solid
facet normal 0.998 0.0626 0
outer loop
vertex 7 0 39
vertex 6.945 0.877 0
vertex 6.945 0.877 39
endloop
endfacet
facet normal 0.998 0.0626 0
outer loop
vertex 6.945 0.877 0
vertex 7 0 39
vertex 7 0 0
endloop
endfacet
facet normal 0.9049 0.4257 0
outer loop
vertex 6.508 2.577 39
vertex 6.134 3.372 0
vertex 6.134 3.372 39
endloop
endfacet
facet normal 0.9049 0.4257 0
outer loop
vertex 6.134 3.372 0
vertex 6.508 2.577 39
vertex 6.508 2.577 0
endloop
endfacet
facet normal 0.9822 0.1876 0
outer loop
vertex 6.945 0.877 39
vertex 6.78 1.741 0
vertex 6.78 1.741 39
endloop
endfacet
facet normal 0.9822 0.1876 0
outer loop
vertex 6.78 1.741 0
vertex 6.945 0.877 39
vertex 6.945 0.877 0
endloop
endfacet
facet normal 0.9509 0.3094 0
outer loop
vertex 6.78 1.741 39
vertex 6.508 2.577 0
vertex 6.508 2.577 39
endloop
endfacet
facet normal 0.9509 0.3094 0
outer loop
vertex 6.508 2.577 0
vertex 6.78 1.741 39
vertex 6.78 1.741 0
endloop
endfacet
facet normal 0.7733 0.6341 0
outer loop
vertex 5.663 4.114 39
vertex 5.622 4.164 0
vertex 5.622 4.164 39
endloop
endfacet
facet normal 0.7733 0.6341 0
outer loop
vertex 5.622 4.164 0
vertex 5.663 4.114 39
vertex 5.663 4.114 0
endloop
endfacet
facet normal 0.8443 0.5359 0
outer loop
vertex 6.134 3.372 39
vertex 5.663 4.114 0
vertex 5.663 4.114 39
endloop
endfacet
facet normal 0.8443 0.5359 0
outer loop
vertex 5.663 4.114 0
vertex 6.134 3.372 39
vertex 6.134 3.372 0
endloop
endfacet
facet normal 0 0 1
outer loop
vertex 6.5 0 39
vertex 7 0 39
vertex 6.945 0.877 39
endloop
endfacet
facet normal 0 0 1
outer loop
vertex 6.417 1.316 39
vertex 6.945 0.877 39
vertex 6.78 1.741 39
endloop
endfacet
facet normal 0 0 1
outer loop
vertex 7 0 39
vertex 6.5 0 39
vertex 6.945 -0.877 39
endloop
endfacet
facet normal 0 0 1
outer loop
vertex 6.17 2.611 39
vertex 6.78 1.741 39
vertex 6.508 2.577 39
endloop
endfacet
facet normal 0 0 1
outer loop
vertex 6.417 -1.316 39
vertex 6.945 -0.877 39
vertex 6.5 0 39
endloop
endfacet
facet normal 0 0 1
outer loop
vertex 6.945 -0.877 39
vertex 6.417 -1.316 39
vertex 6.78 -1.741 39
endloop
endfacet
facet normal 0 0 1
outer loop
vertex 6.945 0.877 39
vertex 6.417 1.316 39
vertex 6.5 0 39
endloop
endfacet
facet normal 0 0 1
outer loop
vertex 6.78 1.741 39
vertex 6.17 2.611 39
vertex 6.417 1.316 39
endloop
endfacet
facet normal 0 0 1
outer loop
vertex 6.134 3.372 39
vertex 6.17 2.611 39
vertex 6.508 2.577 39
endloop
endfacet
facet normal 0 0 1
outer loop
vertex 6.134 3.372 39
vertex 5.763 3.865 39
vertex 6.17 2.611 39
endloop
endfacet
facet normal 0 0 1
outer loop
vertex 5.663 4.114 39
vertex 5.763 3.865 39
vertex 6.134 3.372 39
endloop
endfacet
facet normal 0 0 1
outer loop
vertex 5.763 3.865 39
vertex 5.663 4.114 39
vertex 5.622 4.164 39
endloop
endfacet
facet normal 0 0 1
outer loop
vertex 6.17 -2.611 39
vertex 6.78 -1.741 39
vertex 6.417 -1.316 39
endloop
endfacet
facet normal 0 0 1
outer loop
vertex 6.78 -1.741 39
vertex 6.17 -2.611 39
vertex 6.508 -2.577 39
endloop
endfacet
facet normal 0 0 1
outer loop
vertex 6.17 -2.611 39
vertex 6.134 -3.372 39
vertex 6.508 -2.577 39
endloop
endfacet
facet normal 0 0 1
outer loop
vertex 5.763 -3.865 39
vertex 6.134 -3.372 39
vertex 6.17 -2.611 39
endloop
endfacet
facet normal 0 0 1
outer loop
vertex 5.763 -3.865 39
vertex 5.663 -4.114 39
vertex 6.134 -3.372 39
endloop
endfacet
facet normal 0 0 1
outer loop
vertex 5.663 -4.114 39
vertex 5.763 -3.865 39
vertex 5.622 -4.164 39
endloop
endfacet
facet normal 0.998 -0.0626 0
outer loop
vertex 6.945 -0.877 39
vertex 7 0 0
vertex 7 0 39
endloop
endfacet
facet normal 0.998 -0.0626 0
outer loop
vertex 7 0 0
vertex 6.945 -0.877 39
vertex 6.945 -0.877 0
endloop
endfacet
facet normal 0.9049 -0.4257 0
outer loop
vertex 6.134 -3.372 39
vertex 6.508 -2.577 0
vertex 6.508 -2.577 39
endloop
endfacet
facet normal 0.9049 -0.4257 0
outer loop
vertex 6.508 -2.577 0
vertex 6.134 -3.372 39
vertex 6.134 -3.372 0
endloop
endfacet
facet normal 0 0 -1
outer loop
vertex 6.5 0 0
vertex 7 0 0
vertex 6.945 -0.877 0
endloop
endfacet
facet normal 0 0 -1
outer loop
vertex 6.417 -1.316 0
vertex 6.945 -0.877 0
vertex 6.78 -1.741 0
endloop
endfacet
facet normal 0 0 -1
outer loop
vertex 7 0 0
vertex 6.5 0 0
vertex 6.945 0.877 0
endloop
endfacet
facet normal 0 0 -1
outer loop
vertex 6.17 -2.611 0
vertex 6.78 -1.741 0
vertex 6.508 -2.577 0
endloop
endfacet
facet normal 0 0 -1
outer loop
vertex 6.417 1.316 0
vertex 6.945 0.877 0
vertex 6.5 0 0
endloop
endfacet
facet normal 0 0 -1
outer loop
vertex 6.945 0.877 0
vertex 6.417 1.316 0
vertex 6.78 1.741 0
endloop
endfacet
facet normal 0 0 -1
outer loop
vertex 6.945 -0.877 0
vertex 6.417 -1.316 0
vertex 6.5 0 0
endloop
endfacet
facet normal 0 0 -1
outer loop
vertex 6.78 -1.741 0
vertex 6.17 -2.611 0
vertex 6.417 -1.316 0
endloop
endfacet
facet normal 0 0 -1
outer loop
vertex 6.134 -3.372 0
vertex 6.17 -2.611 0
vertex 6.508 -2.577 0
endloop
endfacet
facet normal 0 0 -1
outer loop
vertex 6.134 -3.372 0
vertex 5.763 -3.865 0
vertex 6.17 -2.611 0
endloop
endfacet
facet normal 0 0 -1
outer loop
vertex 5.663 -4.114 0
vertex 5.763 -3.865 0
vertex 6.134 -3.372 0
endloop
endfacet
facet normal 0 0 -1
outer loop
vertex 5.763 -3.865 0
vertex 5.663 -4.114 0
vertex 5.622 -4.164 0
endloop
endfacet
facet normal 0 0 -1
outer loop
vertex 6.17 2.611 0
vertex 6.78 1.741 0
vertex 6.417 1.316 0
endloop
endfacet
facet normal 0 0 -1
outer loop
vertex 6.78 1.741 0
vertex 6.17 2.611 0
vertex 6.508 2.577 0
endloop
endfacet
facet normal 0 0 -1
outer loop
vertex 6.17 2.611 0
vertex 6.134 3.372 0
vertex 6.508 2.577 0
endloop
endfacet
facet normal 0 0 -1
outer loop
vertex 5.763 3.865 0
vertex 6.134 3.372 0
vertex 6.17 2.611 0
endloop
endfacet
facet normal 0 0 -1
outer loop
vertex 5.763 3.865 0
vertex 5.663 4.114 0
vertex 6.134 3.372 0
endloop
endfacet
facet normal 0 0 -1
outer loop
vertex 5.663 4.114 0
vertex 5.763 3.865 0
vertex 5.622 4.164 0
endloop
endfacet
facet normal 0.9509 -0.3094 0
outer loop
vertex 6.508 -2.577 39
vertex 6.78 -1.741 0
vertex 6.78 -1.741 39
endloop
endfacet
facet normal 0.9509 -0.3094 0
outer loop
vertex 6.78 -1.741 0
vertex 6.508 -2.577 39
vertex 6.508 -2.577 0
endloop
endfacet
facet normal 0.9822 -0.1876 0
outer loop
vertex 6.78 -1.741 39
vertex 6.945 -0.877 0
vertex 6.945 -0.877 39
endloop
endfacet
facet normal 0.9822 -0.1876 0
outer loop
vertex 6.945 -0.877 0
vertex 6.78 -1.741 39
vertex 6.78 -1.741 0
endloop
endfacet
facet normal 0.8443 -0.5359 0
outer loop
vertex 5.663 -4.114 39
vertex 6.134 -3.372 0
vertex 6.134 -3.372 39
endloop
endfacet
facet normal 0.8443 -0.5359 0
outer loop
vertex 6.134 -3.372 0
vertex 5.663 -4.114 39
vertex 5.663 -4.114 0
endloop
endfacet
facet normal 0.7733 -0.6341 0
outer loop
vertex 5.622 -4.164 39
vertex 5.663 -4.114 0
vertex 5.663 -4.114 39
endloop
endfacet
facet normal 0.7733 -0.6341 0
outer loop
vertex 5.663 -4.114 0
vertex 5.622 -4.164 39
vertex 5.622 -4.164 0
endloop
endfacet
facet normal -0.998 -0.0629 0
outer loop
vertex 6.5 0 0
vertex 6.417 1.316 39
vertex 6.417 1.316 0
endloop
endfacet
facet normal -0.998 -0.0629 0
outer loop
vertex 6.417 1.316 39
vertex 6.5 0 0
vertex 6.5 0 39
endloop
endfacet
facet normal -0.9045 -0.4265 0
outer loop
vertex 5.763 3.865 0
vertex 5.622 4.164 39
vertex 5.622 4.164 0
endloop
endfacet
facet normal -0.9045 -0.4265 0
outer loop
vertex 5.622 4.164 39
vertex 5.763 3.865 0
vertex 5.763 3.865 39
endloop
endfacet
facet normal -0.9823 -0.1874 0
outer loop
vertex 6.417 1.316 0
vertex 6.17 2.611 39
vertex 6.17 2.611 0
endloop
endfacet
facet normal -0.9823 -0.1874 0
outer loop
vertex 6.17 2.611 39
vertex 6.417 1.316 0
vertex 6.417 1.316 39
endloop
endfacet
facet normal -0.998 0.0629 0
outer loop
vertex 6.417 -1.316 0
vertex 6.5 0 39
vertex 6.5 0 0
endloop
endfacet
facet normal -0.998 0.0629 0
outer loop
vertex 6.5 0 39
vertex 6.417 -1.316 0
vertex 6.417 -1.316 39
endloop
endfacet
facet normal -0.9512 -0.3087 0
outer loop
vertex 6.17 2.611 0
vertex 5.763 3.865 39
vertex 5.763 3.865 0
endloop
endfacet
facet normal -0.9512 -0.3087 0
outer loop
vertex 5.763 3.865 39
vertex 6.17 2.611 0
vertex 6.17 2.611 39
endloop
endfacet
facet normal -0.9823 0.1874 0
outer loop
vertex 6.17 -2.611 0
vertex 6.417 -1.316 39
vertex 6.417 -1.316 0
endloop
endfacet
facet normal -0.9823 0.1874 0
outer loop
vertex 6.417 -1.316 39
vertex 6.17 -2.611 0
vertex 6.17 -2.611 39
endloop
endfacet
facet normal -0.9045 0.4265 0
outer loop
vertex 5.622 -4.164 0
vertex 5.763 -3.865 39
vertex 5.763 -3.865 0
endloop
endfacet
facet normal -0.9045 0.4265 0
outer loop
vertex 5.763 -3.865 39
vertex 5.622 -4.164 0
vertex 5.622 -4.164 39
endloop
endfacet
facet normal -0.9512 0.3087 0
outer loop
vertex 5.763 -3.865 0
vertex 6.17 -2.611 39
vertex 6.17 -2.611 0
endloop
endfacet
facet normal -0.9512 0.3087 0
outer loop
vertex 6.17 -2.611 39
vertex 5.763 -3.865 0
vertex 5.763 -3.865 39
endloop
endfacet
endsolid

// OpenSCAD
$fn = 50;


difference() {
	union() {
		cylinder(h = 39, r = 7.0000000000);
		translate(v = [-7.0000000000, 0, 0]) {
			cylinder(h = 39, r = 7.0000000000);
		}
	}
	union() {
		cylinder(h = 39, r = 3.2500000000);
		cylinder(h = 39, r = 1.8000000000);
		cylinder(h = 39, r = 1.8000000000);
		cylinder(h = 39, r = 1.8000000000);
		translate(v = [-11.5000000000, 0, 0]) {
			hull() {
				translate(v = [-3.7500000000, 0.0000000000, 0]) {
					cylinder(h = 39, r = 7.5000000000);
				}
				translate(v = [3.7500000000, 0.0000000000, 0]) {
					cylinder(h = 39, r = 7.5000000000);
				}
				translate(v = [-3.7500000000, -0.0000000000, 0]) {
					cylinder(h = 39, r = 7.5000000000);
				}
				translate(v = [3.7500000000, -0.0000000000, 0]) {
					cylinder(h = 39, r = 7.5000000000);
				}
			}
		}
		translate(v = [-4.0000000000, 0, 0.0000000000]) {
			cylinder(h = 39, r = 10.5000000000);
		}
	}
}
